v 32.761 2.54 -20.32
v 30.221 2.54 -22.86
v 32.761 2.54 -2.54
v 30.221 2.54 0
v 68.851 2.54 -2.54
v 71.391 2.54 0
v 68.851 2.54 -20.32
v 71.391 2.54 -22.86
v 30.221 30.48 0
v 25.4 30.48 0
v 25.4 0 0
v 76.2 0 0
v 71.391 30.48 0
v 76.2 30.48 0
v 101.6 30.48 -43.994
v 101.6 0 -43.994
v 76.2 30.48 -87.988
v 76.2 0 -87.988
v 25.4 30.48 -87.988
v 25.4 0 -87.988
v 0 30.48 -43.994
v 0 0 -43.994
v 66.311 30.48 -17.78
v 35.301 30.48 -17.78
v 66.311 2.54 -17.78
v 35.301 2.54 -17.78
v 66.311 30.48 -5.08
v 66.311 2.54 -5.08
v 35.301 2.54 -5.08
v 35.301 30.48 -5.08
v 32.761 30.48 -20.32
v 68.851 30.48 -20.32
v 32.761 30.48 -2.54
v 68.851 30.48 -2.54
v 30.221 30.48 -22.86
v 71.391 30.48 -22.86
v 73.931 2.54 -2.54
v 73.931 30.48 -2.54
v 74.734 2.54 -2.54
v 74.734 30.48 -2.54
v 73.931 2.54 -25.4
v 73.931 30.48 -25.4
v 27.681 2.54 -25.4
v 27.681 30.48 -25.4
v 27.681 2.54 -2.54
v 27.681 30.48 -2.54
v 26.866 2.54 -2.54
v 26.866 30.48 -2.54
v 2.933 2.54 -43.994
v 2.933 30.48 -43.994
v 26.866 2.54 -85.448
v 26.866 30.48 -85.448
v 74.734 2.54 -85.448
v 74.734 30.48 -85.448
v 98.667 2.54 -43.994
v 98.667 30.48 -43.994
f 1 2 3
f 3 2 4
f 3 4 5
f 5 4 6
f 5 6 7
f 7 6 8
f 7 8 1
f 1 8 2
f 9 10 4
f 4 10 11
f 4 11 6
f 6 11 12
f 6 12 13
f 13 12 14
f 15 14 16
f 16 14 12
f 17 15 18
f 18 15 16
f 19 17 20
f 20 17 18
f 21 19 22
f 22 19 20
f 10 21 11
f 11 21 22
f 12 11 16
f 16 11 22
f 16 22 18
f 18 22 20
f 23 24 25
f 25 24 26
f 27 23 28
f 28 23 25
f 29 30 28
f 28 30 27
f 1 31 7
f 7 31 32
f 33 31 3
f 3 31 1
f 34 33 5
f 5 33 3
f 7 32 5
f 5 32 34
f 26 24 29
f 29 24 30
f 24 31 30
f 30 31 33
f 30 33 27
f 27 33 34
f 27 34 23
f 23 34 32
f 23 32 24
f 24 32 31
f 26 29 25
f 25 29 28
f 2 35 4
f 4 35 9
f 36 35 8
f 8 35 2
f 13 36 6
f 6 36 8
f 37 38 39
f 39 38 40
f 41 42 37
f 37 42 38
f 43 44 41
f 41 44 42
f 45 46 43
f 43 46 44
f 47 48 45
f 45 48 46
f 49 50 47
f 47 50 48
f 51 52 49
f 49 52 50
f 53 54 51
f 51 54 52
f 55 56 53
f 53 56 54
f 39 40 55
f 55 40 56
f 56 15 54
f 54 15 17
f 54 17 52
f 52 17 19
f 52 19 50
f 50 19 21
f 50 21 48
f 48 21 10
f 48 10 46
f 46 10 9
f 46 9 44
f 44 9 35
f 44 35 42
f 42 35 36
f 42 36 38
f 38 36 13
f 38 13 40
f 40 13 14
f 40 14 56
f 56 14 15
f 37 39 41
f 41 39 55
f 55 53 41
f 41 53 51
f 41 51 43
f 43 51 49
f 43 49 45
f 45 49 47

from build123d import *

# Parameters (mm, degrees)
BOSS_EXTRUDE1_DEPTH = 2.54
SKETCH3_W           = 36.089649417
SKETCH3_H           = 17.78
SKETCH3_W_2         = 31.009649417
SKETCH3_H_2         = 12.7
BOSS_EXTRUDE2_DEPTH = 30.48


with BuildPart() as part:
    # Sketch2 → Boss-Extrude1 (new body)
    with BuildSketch(Plane(origin=(0, 0, 0), x_dir=(1, 0, 0), z_dir=(0, 1, 0))):
        Polygon((76.2, 0), (101.6, 43.994090512), (76.2, 87.988181024), (25.4, 87.988181024), (0, 43.994090512), (25.4, 0), align=None)
    extrude(amount=BOSS_EXTRUDE1_DEPTH)

    # Sketch3 → Boss-Extrude2 (add)
    with BuildSketch(Plane(origin=(0, 0, 0), x_dir=(1, 0, 0), z_dir=(0, 1, 0))):
        with Locations((50.805939368, 11.43)):
            Rectangle(SKETCH3_W, SKETCH3_H)
        with Locations((50.805939368, 11.43)):
            Rectangle(SKETCH3_W_2, SKETCH3_H_2, mode=Mode.SUBTRACT)
        Polygon((30.221114659, 22.86), (30.221114659, 0), (25.4, 0), (0, 43.994090512), (25.4, 87.988181024), (76.2, 87.988181024), (101.6, 43.994090512), (76.2, 0), (71.390764076, 0), (71.390764076, 22.86), align=None)
        Polygon((73.930764076, 2.54), (74.733530316, 2.54), (98.667060633, 43.994090512), (74.733530316, 85.448181024), (26.866469684, 85.448181024), (2.932939367, 43.994090512), (26.866469684, 2.54), (27.681114659, 2.54), (27.681114659, 25.4), (73.930764076, 25.4), align=None, mode=Mode.SUBTRACT)
    extrude(amount=BOSS_EXTRUDE2_DEPTH)


solid = part.part
